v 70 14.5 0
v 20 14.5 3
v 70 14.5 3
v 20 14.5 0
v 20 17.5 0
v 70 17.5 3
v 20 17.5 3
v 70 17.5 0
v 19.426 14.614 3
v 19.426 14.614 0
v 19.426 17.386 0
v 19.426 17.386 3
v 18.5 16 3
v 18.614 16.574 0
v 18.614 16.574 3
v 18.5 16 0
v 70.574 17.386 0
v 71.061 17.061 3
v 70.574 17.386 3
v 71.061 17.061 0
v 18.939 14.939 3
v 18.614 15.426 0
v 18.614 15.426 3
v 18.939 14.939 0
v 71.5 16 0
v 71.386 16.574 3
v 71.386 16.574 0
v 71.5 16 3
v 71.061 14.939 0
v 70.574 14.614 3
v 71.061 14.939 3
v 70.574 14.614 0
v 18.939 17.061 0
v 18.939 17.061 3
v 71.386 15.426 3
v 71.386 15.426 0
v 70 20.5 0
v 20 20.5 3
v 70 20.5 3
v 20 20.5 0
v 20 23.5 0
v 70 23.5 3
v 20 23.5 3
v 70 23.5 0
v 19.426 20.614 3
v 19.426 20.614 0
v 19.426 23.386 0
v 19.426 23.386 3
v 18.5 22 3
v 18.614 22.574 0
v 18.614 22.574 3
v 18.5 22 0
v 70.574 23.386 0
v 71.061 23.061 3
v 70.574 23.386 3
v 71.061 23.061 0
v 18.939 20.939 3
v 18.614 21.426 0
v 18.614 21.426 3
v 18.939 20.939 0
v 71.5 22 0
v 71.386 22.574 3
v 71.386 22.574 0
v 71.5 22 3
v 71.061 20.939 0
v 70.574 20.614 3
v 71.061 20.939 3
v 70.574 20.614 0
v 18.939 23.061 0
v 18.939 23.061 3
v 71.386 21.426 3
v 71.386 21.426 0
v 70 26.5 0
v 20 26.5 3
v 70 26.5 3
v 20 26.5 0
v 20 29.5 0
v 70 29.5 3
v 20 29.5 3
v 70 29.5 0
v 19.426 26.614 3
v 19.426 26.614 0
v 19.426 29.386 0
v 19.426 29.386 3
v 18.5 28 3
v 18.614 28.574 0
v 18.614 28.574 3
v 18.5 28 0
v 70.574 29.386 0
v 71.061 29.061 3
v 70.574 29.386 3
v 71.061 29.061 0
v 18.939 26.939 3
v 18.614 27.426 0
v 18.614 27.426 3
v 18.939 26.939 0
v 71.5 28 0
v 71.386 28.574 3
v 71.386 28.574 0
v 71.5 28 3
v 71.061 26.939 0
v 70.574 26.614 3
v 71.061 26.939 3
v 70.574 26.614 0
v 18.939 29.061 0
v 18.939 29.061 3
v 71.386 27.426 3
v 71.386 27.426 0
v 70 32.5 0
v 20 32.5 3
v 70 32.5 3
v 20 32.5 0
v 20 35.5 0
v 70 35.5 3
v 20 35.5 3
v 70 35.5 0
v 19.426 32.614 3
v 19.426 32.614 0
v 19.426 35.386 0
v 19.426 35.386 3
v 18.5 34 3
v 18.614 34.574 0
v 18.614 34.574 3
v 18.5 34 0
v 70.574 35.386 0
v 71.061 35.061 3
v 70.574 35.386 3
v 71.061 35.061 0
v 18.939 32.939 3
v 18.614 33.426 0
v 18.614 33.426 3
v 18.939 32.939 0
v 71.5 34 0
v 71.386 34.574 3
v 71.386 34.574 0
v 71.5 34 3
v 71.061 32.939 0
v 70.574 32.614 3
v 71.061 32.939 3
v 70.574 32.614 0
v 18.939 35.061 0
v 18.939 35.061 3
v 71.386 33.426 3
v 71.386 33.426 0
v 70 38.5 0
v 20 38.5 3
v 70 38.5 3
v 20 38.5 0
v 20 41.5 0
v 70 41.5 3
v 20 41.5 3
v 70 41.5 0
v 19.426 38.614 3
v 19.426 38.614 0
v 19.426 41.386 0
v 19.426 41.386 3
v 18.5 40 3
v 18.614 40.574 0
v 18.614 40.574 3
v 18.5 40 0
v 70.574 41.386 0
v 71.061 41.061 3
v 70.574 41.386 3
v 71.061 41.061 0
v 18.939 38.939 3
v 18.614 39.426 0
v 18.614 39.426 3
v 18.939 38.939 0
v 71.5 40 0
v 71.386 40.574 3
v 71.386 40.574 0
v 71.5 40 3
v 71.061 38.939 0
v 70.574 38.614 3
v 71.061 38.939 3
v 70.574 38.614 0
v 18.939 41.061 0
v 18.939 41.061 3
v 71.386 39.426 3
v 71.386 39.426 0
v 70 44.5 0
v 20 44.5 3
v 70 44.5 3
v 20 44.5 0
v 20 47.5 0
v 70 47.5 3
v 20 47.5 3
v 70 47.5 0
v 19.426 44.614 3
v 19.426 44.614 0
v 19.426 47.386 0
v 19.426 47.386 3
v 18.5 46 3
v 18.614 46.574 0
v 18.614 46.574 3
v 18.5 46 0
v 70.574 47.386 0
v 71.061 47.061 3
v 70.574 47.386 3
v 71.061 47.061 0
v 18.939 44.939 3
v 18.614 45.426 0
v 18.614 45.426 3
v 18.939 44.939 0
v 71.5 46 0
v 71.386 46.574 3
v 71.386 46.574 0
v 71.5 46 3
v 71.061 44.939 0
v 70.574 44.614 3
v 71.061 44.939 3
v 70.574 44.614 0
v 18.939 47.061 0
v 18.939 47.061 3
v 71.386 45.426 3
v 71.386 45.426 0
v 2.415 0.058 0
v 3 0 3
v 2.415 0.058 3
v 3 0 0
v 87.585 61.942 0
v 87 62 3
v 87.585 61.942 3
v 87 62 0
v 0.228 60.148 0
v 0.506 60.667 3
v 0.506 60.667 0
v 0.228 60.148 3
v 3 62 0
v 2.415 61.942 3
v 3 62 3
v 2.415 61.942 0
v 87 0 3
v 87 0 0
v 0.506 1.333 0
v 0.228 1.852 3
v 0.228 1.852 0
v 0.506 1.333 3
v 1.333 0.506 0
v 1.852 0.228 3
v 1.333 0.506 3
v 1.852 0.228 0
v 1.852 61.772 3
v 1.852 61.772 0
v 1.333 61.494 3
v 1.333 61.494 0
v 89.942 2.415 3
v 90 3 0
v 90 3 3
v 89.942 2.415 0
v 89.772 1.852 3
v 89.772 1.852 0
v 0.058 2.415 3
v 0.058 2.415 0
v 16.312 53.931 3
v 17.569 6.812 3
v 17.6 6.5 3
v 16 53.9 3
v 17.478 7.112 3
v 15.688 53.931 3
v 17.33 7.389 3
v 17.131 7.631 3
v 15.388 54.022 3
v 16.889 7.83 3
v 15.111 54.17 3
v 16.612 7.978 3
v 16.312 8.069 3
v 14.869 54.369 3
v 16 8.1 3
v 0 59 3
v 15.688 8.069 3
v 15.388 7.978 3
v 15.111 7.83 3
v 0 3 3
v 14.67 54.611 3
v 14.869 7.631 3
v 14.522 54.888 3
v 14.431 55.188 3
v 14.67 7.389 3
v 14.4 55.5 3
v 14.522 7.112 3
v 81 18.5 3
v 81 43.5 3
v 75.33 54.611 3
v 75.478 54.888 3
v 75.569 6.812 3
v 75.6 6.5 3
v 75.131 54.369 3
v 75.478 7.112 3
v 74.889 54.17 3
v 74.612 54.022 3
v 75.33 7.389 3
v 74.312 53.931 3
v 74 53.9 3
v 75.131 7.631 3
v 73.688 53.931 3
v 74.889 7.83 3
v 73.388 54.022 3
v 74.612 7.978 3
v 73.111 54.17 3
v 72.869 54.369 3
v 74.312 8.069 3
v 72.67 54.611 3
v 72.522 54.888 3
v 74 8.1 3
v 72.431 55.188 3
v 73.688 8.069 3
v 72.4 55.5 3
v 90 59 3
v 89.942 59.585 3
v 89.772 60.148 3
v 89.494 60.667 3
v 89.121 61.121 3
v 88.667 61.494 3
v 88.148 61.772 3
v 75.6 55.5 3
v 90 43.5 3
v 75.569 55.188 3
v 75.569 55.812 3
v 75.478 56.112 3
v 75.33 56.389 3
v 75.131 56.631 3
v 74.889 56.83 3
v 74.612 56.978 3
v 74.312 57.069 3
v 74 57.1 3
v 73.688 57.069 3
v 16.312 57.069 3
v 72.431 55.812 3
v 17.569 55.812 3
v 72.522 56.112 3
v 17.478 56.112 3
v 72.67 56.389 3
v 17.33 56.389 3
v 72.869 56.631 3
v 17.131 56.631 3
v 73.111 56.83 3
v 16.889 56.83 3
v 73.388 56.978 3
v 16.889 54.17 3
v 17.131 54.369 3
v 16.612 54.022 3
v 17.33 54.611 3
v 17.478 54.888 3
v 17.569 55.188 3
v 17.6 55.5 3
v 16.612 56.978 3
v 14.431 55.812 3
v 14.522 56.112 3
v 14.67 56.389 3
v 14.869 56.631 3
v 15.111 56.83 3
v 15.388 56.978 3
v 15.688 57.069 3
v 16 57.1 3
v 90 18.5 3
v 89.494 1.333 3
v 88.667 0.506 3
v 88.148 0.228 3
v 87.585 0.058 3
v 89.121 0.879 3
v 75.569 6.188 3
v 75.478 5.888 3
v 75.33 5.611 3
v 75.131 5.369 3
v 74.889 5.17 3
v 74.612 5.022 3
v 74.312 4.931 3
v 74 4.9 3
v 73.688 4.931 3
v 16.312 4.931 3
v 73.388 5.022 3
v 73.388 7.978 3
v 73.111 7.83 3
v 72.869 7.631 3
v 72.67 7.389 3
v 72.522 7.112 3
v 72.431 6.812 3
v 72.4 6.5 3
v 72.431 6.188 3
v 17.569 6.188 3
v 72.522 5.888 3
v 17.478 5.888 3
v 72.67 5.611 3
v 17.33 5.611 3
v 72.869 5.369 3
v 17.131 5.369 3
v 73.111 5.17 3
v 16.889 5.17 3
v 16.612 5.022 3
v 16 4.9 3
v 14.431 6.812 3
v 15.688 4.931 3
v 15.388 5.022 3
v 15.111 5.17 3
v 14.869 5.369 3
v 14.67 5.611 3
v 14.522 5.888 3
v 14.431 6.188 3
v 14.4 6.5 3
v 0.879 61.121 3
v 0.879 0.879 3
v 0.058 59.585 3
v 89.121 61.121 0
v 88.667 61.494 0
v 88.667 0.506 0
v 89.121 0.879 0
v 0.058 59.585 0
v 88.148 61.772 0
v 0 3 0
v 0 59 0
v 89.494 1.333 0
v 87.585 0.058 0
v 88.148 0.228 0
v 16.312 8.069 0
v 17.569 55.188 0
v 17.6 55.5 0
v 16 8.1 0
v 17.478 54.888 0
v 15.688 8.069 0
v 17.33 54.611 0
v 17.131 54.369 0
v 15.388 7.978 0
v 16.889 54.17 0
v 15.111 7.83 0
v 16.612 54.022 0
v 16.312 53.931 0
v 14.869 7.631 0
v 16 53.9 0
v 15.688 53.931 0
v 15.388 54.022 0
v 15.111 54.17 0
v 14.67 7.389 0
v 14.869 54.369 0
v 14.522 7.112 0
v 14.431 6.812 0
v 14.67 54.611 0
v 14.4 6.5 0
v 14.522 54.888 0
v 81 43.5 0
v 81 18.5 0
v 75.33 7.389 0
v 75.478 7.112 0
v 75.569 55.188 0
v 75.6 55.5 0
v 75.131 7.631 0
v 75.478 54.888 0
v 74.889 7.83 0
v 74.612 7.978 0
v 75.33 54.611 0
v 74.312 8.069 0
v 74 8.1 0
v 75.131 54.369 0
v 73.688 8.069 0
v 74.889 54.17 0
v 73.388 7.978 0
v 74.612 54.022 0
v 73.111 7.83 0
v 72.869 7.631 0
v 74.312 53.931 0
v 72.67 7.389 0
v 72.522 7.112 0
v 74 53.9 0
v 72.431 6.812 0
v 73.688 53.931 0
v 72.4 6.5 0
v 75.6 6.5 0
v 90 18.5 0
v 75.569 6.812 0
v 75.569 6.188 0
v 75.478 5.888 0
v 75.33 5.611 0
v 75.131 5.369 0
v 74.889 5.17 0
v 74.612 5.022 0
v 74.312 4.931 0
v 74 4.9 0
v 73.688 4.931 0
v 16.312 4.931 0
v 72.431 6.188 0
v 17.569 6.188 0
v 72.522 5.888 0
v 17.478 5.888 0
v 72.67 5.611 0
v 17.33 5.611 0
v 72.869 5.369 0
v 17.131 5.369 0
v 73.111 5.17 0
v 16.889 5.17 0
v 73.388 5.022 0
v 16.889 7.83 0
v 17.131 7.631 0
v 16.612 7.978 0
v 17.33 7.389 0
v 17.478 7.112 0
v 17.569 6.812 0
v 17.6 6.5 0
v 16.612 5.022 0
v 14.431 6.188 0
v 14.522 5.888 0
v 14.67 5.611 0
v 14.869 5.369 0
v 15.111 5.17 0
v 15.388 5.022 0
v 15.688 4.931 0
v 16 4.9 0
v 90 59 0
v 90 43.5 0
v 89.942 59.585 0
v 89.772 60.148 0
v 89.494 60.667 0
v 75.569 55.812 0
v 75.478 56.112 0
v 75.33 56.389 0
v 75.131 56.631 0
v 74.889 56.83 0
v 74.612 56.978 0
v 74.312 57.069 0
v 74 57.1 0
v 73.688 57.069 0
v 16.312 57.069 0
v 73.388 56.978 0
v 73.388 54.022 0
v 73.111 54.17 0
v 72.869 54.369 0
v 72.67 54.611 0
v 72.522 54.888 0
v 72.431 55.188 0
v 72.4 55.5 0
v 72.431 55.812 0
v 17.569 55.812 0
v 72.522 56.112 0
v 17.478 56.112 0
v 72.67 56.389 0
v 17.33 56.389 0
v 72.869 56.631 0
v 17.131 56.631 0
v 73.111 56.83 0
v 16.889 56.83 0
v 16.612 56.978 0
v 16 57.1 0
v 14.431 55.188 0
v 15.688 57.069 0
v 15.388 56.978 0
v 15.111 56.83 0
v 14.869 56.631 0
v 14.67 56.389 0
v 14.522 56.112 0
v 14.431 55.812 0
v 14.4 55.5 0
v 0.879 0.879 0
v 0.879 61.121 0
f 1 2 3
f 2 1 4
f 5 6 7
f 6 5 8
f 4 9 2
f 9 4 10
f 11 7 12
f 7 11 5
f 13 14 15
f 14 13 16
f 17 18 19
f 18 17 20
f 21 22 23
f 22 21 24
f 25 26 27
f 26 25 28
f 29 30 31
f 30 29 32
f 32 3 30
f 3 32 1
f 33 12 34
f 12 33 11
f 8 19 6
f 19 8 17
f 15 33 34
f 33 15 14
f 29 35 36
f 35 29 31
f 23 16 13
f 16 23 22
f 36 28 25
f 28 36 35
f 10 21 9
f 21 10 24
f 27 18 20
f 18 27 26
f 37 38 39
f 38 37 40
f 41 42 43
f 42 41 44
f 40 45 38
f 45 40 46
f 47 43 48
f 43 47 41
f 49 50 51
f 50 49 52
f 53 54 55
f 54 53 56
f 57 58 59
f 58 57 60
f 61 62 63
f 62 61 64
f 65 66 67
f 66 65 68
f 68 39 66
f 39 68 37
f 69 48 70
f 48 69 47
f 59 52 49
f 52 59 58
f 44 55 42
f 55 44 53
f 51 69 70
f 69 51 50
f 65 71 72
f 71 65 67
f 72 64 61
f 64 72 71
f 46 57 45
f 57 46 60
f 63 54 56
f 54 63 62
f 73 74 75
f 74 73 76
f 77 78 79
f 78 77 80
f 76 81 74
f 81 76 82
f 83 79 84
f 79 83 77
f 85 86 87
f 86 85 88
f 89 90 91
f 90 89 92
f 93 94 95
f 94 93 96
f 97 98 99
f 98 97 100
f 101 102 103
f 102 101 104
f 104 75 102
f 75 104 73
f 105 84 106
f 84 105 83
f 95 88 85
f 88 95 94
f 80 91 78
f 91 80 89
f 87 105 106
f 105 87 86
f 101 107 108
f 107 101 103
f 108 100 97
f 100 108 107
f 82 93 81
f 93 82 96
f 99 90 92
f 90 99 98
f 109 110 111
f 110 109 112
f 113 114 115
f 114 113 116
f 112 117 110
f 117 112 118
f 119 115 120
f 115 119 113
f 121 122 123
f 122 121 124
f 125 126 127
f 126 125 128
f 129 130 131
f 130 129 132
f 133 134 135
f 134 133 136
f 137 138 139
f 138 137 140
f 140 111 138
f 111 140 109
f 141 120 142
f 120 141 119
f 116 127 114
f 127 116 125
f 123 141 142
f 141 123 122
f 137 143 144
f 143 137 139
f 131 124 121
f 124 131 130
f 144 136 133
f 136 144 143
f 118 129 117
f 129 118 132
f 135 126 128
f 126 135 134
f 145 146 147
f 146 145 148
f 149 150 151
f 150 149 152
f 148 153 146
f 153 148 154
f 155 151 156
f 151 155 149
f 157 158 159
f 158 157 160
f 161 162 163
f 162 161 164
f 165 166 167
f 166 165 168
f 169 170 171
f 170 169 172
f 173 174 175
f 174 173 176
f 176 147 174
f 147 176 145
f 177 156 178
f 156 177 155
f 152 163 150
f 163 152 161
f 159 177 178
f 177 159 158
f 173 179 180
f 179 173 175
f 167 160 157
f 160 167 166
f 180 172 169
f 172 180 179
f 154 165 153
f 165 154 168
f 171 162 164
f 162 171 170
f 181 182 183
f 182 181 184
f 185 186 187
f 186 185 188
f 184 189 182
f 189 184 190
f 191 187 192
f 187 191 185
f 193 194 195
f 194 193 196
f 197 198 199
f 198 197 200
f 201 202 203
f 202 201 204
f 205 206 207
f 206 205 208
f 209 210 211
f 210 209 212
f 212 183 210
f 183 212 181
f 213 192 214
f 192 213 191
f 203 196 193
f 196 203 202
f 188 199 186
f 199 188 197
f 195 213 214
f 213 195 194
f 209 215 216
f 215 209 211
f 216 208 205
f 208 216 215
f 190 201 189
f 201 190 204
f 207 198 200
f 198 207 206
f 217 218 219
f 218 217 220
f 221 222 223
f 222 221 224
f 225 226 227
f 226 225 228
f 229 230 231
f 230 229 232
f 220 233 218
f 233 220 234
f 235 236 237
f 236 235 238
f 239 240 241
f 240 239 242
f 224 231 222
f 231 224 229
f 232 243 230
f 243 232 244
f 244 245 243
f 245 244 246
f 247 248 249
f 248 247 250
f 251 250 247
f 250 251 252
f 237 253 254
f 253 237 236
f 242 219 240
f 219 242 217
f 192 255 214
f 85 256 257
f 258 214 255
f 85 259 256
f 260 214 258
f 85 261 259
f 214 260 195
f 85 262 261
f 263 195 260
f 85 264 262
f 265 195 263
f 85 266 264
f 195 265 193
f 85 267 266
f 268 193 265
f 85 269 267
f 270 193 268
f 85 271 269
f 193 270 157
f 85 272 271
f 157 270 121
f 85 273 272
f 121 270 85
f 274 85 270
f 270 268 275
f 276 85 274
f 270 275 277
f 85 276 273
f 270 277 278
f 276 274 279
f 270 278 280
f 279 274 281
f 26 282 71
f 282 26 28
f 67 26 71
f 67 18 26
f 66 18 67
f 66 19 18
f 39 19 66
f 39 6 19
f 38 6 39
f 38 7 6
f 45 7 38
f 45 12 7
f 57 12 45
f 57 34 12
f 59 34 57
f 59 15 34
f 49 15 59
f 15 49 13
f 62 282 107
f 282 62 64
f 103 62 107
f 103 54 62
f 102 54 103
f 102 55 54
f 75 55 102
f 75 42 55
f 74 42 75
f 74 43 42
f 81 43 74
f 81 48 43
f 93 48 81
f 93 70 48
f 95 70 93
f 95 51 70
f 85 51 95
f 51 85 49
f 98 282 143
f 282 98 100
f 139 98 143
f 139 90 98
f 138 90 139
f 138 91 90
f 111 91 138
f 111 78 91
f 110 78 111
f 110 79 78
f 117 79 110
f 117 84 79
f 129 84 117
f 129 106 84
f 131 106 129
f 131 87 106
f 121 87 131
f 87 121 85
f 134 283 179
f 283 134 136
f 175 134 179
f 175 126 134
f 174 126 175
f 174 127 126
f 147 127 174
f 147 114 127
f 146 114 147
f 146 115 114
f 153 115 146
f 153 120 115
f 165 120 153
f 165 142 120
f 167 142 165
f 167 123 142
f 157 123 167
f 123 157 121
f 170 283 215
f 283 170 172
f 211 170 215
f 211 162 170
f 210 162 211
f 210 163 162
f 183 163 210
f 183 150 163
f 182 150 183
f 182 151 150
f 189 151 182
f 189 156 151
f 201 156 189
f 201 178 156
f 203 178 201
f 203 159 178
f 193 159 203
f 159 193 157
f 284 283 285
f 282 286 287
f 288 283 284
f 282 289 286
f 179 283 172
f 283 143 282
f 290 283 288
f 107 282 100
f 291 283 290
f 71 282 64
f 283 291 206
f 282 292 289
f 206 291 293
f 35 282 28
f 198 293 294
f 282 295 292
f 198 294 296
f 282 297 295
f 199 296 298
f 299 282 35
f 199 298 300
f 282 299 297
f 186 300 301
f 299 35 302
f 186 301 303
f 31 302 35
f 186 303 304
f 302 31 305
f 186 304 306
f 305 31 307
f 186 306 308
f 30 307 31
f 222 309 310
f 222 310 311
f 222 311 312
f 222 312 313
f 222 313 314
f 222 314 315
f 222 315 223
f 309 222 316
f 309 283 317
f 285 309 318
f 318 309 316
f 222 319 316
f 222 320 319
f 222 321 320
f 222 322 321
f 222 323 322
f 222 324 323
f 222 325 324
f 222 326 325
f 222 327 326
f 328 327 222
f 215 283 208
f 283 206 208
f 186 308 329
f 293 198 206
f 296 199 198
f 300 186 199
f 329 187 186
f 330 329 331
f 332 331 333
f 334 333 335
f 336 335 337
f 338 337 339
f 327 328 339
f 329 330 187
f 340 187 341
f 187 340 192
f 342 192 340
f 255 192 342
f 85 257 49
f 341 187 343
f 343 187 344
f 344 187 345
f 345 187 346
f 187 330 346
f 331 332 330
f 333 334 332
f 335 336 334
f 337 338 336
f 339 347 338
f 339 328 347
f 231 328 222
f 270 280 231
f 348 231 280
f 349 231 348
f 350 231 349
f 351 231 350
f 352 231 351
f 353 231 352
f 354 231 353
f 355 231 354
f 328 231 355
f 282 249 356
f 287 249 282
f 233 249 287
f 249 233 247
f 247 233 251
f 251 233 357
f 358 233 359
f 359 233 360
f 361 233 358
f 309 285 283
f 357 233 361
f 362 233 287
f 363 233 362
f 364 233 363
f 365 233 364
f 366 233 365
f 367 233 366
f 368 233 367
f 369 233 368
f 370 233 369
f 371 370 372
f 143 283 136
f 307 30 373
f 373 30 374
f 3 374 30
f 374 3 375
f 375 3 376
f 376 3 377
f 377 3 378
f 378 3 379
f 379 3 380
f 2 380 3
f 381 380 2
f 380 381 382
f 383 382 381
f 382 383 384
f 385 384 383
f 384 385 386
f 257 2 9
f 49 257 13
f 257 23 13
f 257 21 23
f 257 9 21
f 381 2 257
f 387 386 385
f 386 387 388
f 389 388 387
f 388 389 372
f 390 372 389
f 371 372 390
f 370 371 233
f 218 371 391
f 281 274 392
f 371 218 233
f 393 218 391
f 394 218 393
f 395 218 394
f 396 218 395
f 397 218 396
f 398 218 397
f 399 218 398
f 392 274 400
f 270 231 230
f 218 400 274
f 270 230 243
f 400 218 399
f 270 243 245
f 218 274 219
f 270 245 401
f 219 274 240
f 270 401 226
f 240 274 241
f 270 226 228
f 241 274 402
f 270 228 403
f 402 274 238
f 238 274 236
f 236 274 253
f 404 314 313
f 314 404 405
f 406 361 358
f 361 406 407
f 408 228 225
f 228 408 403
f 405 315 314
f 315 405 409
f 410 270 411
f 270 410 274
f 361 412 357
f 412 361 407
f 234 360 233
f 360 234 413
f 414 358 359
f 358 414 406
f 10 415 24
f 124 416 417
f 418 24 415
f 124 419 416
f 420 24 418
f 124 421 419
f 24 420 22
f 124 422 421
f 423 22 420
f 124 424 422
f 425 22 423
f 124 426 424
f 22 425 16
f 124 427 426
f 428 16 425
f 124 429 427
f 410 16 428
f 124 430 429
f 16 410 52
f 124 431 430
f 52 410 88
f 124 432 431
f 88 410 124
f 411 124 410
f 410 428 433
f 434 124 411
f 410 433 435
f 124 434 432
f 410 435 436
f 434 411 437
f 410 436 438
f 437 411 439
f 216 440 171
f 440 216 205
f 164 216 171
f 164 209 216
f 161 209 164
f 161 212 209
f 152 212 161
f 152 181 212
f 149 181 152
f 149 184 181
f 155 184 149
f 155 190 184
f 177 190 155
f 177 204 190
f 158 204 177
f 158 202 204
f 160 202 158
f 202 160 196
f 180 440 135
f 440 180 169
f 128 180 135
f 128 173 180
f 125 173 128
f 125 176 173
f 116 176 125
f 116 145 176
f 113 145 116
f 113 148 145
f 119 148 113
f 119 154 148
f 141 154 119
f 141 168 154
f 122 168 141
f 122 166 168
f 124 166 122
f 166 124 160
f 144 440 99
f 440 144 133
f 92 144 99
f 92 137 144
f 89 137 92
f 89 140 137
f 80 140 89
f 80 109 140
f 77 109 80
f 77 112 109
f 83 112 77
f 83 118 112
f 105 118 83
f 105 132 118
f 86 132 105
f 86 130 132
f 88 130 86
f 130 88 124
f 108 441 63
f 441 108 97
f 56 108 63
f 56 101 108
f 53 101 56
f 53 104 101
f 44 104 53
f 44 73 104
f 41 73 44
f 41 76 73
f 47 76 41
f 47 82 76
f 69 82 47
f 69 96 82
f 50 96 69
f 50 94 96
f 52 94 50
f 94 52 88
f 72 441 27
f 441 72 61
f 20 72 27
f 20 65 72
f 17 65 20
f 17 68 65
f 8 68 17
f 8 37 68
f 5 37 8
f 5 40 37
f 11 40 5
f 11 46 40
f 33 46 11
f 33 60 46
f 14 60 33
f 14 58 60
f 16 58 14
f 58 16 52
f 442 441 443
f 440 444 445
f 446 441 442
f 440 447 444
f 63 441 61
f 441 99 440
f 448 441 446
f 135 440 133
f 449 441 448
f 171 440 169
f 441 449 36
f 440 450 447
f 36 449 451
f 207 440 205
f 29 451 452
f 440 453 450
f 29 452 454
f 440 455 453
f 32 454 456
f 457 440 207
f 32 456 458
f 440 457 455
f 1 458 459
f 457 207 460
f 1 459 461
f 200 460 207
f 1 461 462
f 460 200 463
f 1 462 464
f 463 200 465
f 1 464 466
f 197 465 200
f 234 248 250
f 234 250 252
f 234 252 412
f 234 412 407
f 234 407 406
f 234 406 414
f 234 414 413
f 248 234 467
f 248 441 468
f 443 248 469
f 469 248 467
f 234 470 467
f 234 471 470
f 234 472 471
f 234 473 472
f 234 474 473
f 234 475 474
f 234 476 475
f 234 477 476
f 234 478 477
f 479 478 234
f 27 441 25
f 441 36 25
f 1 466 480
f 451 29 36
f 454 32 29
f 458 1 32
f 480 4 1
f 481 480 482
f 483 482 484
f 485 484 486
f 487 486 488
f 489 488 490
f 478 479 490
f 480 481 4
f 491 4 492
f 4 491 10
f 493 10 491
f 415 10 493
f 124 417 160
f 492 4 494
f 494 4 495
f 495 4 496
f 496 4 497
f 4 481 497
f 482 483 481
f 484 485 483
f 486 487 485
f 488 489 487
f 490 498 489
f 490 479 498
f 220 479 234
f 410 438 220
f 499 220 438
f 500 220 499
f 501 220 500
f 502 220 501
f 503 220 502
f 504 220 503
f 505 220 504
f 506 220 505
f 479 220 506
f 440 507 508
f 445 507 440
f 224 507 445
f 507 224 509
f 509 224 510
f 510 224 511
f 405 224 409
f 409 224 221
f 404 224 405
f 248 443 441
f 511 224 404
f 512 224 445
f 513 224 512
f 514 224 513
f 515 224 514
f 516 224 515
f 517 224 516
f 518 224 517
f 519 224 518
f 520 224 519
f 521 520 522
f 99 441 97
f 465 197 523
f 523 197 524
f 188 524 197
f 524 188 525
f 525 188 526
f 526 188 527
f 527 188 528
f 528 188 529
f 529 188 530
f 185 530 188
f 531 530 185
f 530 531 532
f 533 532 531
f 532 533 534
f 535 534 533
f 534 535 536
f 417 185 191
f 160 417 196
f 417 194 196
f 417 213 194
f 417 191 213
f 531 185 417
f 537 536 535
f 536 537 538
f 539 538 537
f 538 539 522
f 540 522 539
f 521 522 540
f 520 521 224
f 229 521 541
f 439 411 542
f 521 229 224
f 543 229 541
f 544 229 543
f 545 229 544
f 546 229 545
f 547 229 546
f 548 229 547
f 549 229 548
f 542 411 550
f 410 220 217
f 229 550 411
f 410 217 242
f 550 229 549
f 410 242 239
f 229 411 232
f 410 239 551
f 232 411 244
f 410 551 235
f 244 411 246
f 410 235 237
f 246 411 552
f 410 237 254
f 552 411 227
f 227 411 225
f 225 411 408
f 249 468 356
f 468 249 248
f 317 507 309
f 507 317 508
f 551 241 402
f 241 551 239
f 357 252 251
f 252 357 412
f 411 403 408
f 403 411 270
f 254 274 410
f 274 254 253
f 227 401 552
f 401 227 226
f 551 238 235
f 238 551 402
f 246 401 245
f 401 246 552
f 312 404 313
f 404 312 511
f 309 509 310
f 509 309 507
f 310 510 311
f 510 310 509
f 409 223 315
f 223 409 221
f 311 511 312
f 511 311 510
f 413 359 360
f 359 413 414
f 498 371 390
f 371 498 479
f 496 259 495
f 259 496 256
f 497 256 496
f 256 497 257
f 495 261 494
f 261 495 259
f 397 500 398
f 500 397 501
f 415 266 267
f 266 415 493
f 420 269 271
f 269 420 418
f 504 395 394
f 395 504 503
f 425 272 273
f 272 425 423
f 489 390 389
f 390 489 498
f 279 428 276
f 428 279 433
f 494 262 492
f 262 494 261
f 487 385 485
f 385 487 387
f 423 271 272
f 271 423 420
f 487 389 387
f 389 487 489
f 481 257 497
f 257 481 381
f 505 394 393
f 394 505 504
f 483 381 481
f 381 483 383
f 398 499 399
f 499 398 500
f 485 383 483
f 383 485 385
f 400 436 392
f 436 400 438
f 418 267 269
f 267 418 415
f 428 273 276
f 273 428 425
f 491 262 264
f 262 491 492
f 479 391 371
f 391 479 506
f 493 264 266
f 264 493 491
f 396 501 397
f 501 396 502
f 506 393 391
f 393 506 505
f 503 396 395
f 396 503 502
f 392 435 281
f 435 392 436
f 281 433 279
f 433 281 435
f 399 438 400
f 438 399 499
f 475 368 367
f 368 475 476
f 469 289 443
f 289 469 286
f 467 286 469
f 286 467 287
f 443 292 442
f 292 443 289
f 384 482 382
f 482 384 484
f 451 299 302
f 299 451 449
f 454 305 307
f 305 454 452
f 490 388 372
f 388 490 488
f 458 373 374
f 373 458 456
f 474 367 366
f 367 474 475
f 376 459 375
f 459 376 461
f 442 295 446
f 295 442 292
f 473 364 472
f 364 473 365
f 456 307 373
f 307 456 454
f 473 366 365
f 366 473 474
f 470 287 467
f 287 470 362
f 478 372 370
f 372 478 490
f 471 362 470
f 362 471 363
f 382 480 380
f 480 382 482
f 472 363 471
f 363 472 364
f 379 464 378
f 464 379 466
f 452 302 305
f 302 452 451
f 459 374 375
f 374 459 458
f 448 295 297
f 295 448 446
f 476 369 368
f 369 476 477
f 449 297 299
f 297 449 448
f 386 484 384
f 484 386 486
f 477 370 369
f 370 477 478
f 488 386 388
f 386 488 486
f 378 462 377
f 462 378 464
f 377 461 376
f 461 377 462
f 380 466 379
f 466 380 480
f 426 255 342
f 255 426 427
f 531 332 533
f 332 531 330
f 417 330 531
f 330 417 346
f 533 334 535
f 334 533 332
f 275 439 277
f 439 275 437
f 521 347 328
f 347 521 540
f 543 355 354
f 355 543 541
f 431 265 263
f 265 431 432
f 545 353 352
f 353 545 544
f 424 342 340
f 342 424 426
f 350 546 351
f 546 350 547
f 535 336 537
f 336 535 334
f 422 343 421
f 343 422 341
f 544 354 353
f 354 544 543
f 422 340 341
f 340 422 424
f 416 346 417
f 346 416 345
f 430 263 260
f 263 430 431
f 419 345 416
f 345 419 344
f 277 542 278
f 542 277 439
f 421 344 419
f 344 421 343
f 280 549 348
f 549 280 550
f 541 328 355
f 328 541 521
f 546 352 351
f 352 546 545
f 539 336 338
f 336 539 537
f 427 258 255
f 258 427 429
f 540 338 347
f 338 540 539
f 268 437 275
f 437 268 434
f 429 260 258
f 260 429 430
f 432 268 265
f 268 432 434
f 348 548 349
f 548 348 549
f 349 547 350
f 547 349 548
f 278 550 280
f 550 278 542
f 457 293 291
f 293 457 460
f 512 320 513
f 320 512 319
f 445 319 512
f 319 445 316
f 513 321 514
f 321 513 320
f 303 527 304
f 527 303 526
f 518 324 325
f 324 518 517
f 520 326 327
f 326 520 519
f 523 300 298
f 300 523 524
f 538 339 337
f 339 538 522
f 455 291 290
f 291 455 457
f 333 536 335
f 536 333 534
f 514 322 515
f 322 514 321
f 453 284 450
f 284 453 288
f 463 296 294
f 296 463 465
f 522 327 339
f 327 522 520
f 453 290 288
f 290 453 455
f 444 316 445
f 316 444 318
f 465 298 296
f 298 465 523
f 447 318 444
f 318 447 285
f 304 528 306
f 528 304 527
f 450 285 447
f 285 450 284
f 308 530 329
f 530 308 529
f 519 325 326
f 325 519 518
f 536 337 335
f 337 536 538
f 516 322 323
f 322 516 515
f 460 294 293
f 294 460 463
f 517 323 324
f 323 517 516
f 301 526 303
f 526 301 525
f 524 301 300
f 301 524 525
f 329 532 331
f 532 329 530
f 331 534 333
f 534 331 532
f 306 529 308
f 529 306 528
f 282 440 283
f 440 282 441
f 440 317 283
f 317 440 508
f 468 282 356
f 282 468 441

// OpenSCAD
// RPi Gardener HAT Base - Simple Version
// Flat base with M3 holes for RPi 4 and HAT mounting with spacers
// Export to STL: OpenSCAD -> File -> Export -> STL

/* [Base Dimensions] */
// Base sized to support full Raspberry Pi 4 (85mm x 56mm)
base_width = 90;          // mm - slightly larger than Pi for margin
base_depth = 62;          // mm - slightly larger than Pi for margin
base_thickness = 3;       // mm
corner_radius = 3;        // mm

/* [Mounting Holes] */
// Standard RPi 4 mounting pattern: 58mm x 49mm
// Holes are 3.5mm from board edges on the Pi
// Same holes work for both RPi and HAT (they align)
hole_spacing_x = 58;      // mm between holes horizontally
hole_spacing_y = 49;      // mm between holes vertically
hole_diameter = 3.2;      // mm - M3 clearance hole
// Center the Pi mounting pattern on the base
hole_offset_x = (90 - 58) / 2;   // 16mm - centered on base width
hole_offset_y = (62 - 49) / 2;   // 6.5mm - centered on base depth

/* [Ventilation] */
vent_slots = true;        // Add ventilation slots
vent_width = 3;           // mm
vent_length = 50;         // mm - longer to match wider base
vent_count = 6;           // more slots for better cooling

/* [Cable Cutout] */
usb_cutout = true;        // Cutout for USB/power cables
usb_cutout_width = 25;    // mm
usb_cutout_depth = 10;    // mm

// Modules
module rounded_rect(w, d, h, r) {
    hull() {
        translate([r, r, 0]) cylinder(h=h, r=r, $fn=32);
        translate([w-r, r, 0]) cylinder(h=h, r=r, $fn=32);
        translate([r, d-r, 0]) cylinder(h=h, r=r, $fn=32);
        translate([w-r, d-r, 0]) cylinder(h=h, r=r, $fn=32);
    }
}

module vent_slot(length, width) {
    hull() {
        translate([0, 0, 0]) cylinder(h=base_thickness+0.2, d=width, $fn=16);
        translate([length, 0, 0]) cylinder(h=base_thickness+0.2, d=width, $fn=16);
    }
}

// Main assembly
module base() {
    difference() {
        // Base plate
        rounded_rect(base_width, base_depth, base_thickness, corner_radius);

        // Mounting holes (M3) - same positions for RPi and HAT
        // Hole 1 (H1 position)
        translate([hole_offset_x, hole_offset_y, -0.1])
            cylinder(h=base_thickness+0.2, d=hole_diameter, $fn=32);

        // Hole 2 (H2 position)
        translate([hole_offset_x + hole_spacing_x, hole_offset_y, -0.1])
            cylinder(h=base_thickness+0.2, d=hole_diameter, $fn=32);

        // Hole 3 (H3 position)
        translate([hole_offset_x, hole_offset_y + hole_spacing_y, -0.1])
            cylinder(h=base_thickness+0.2, d=hole_diameter, $fn=32);

        // Hole 4 (H4 position)
        translate([hole_offset_x + hole_spacing_x, hole_offset_y + hole_spacing_y, -0.1])
            cylinder(h=base_thickness+0.2, d=hole_diameter, $fn=32);

        // Ventilation slots
        if (vent_slots) {
            slot_start_x = (base_width - vent_length) / 2;
            slot_spacing = (base_depth - 20) / (vent_count + 1);
            for (i = [1:vent_count]) {
                translate([slot_start_x, 10 + i * slot_spacing, -0.1])
                    vent_slot(vent_length, vent_width);
            }
        }

        // USB/Power cable cutout
        if (usb_cutout) {
            translate([base_width - usb_cutout_depth + 1, (base_depth - usb_cutout_width) / 2, -0.1])
                cube([usb_cutout_depth + 1, usb_cutout_width, base_thickness + 0.2]);
        }
    }
}

// Render the base
base();

// Info
echo("=== RPi Gardener HAT Base ===");
echo(str("Base size: ", base_width, "mm x ", base_depth, "mm x ", base_thickness, "mm"));
echo(str("Supports: Raspberry Pi 4 (85mm x 56mm)"));
echo(str("Hole pattern: ", hole_spacing_x, "mm x ", hole_spacing_y, "mm (standard RPi)"));
echo(str("Hole positions: (", hole_offset_x, ",", hole_offset_y, ") to (", hole_offset_x+hole_spacing_x, ",", hole_offset_y+hole_spacing_y, ")"));
echo(str("Hole diameter: ", hole_diameter, "mm (M3 clearance)"));
echo("");
echo("Assembly with spacers:");
echo("1. Insert M3 screws from bottom through base holes");
echo("2. Add spacer (e.g. 5-6mm) for RPi clearance");
echo("3. Mount Raspberry Pi 4 (center on base)");
echo("4. Add spacer (e.g. 10-12mm) for HAT clearance");
echo("5. Mount HAT");
echo("6. Secure with M3 nuts on top");
